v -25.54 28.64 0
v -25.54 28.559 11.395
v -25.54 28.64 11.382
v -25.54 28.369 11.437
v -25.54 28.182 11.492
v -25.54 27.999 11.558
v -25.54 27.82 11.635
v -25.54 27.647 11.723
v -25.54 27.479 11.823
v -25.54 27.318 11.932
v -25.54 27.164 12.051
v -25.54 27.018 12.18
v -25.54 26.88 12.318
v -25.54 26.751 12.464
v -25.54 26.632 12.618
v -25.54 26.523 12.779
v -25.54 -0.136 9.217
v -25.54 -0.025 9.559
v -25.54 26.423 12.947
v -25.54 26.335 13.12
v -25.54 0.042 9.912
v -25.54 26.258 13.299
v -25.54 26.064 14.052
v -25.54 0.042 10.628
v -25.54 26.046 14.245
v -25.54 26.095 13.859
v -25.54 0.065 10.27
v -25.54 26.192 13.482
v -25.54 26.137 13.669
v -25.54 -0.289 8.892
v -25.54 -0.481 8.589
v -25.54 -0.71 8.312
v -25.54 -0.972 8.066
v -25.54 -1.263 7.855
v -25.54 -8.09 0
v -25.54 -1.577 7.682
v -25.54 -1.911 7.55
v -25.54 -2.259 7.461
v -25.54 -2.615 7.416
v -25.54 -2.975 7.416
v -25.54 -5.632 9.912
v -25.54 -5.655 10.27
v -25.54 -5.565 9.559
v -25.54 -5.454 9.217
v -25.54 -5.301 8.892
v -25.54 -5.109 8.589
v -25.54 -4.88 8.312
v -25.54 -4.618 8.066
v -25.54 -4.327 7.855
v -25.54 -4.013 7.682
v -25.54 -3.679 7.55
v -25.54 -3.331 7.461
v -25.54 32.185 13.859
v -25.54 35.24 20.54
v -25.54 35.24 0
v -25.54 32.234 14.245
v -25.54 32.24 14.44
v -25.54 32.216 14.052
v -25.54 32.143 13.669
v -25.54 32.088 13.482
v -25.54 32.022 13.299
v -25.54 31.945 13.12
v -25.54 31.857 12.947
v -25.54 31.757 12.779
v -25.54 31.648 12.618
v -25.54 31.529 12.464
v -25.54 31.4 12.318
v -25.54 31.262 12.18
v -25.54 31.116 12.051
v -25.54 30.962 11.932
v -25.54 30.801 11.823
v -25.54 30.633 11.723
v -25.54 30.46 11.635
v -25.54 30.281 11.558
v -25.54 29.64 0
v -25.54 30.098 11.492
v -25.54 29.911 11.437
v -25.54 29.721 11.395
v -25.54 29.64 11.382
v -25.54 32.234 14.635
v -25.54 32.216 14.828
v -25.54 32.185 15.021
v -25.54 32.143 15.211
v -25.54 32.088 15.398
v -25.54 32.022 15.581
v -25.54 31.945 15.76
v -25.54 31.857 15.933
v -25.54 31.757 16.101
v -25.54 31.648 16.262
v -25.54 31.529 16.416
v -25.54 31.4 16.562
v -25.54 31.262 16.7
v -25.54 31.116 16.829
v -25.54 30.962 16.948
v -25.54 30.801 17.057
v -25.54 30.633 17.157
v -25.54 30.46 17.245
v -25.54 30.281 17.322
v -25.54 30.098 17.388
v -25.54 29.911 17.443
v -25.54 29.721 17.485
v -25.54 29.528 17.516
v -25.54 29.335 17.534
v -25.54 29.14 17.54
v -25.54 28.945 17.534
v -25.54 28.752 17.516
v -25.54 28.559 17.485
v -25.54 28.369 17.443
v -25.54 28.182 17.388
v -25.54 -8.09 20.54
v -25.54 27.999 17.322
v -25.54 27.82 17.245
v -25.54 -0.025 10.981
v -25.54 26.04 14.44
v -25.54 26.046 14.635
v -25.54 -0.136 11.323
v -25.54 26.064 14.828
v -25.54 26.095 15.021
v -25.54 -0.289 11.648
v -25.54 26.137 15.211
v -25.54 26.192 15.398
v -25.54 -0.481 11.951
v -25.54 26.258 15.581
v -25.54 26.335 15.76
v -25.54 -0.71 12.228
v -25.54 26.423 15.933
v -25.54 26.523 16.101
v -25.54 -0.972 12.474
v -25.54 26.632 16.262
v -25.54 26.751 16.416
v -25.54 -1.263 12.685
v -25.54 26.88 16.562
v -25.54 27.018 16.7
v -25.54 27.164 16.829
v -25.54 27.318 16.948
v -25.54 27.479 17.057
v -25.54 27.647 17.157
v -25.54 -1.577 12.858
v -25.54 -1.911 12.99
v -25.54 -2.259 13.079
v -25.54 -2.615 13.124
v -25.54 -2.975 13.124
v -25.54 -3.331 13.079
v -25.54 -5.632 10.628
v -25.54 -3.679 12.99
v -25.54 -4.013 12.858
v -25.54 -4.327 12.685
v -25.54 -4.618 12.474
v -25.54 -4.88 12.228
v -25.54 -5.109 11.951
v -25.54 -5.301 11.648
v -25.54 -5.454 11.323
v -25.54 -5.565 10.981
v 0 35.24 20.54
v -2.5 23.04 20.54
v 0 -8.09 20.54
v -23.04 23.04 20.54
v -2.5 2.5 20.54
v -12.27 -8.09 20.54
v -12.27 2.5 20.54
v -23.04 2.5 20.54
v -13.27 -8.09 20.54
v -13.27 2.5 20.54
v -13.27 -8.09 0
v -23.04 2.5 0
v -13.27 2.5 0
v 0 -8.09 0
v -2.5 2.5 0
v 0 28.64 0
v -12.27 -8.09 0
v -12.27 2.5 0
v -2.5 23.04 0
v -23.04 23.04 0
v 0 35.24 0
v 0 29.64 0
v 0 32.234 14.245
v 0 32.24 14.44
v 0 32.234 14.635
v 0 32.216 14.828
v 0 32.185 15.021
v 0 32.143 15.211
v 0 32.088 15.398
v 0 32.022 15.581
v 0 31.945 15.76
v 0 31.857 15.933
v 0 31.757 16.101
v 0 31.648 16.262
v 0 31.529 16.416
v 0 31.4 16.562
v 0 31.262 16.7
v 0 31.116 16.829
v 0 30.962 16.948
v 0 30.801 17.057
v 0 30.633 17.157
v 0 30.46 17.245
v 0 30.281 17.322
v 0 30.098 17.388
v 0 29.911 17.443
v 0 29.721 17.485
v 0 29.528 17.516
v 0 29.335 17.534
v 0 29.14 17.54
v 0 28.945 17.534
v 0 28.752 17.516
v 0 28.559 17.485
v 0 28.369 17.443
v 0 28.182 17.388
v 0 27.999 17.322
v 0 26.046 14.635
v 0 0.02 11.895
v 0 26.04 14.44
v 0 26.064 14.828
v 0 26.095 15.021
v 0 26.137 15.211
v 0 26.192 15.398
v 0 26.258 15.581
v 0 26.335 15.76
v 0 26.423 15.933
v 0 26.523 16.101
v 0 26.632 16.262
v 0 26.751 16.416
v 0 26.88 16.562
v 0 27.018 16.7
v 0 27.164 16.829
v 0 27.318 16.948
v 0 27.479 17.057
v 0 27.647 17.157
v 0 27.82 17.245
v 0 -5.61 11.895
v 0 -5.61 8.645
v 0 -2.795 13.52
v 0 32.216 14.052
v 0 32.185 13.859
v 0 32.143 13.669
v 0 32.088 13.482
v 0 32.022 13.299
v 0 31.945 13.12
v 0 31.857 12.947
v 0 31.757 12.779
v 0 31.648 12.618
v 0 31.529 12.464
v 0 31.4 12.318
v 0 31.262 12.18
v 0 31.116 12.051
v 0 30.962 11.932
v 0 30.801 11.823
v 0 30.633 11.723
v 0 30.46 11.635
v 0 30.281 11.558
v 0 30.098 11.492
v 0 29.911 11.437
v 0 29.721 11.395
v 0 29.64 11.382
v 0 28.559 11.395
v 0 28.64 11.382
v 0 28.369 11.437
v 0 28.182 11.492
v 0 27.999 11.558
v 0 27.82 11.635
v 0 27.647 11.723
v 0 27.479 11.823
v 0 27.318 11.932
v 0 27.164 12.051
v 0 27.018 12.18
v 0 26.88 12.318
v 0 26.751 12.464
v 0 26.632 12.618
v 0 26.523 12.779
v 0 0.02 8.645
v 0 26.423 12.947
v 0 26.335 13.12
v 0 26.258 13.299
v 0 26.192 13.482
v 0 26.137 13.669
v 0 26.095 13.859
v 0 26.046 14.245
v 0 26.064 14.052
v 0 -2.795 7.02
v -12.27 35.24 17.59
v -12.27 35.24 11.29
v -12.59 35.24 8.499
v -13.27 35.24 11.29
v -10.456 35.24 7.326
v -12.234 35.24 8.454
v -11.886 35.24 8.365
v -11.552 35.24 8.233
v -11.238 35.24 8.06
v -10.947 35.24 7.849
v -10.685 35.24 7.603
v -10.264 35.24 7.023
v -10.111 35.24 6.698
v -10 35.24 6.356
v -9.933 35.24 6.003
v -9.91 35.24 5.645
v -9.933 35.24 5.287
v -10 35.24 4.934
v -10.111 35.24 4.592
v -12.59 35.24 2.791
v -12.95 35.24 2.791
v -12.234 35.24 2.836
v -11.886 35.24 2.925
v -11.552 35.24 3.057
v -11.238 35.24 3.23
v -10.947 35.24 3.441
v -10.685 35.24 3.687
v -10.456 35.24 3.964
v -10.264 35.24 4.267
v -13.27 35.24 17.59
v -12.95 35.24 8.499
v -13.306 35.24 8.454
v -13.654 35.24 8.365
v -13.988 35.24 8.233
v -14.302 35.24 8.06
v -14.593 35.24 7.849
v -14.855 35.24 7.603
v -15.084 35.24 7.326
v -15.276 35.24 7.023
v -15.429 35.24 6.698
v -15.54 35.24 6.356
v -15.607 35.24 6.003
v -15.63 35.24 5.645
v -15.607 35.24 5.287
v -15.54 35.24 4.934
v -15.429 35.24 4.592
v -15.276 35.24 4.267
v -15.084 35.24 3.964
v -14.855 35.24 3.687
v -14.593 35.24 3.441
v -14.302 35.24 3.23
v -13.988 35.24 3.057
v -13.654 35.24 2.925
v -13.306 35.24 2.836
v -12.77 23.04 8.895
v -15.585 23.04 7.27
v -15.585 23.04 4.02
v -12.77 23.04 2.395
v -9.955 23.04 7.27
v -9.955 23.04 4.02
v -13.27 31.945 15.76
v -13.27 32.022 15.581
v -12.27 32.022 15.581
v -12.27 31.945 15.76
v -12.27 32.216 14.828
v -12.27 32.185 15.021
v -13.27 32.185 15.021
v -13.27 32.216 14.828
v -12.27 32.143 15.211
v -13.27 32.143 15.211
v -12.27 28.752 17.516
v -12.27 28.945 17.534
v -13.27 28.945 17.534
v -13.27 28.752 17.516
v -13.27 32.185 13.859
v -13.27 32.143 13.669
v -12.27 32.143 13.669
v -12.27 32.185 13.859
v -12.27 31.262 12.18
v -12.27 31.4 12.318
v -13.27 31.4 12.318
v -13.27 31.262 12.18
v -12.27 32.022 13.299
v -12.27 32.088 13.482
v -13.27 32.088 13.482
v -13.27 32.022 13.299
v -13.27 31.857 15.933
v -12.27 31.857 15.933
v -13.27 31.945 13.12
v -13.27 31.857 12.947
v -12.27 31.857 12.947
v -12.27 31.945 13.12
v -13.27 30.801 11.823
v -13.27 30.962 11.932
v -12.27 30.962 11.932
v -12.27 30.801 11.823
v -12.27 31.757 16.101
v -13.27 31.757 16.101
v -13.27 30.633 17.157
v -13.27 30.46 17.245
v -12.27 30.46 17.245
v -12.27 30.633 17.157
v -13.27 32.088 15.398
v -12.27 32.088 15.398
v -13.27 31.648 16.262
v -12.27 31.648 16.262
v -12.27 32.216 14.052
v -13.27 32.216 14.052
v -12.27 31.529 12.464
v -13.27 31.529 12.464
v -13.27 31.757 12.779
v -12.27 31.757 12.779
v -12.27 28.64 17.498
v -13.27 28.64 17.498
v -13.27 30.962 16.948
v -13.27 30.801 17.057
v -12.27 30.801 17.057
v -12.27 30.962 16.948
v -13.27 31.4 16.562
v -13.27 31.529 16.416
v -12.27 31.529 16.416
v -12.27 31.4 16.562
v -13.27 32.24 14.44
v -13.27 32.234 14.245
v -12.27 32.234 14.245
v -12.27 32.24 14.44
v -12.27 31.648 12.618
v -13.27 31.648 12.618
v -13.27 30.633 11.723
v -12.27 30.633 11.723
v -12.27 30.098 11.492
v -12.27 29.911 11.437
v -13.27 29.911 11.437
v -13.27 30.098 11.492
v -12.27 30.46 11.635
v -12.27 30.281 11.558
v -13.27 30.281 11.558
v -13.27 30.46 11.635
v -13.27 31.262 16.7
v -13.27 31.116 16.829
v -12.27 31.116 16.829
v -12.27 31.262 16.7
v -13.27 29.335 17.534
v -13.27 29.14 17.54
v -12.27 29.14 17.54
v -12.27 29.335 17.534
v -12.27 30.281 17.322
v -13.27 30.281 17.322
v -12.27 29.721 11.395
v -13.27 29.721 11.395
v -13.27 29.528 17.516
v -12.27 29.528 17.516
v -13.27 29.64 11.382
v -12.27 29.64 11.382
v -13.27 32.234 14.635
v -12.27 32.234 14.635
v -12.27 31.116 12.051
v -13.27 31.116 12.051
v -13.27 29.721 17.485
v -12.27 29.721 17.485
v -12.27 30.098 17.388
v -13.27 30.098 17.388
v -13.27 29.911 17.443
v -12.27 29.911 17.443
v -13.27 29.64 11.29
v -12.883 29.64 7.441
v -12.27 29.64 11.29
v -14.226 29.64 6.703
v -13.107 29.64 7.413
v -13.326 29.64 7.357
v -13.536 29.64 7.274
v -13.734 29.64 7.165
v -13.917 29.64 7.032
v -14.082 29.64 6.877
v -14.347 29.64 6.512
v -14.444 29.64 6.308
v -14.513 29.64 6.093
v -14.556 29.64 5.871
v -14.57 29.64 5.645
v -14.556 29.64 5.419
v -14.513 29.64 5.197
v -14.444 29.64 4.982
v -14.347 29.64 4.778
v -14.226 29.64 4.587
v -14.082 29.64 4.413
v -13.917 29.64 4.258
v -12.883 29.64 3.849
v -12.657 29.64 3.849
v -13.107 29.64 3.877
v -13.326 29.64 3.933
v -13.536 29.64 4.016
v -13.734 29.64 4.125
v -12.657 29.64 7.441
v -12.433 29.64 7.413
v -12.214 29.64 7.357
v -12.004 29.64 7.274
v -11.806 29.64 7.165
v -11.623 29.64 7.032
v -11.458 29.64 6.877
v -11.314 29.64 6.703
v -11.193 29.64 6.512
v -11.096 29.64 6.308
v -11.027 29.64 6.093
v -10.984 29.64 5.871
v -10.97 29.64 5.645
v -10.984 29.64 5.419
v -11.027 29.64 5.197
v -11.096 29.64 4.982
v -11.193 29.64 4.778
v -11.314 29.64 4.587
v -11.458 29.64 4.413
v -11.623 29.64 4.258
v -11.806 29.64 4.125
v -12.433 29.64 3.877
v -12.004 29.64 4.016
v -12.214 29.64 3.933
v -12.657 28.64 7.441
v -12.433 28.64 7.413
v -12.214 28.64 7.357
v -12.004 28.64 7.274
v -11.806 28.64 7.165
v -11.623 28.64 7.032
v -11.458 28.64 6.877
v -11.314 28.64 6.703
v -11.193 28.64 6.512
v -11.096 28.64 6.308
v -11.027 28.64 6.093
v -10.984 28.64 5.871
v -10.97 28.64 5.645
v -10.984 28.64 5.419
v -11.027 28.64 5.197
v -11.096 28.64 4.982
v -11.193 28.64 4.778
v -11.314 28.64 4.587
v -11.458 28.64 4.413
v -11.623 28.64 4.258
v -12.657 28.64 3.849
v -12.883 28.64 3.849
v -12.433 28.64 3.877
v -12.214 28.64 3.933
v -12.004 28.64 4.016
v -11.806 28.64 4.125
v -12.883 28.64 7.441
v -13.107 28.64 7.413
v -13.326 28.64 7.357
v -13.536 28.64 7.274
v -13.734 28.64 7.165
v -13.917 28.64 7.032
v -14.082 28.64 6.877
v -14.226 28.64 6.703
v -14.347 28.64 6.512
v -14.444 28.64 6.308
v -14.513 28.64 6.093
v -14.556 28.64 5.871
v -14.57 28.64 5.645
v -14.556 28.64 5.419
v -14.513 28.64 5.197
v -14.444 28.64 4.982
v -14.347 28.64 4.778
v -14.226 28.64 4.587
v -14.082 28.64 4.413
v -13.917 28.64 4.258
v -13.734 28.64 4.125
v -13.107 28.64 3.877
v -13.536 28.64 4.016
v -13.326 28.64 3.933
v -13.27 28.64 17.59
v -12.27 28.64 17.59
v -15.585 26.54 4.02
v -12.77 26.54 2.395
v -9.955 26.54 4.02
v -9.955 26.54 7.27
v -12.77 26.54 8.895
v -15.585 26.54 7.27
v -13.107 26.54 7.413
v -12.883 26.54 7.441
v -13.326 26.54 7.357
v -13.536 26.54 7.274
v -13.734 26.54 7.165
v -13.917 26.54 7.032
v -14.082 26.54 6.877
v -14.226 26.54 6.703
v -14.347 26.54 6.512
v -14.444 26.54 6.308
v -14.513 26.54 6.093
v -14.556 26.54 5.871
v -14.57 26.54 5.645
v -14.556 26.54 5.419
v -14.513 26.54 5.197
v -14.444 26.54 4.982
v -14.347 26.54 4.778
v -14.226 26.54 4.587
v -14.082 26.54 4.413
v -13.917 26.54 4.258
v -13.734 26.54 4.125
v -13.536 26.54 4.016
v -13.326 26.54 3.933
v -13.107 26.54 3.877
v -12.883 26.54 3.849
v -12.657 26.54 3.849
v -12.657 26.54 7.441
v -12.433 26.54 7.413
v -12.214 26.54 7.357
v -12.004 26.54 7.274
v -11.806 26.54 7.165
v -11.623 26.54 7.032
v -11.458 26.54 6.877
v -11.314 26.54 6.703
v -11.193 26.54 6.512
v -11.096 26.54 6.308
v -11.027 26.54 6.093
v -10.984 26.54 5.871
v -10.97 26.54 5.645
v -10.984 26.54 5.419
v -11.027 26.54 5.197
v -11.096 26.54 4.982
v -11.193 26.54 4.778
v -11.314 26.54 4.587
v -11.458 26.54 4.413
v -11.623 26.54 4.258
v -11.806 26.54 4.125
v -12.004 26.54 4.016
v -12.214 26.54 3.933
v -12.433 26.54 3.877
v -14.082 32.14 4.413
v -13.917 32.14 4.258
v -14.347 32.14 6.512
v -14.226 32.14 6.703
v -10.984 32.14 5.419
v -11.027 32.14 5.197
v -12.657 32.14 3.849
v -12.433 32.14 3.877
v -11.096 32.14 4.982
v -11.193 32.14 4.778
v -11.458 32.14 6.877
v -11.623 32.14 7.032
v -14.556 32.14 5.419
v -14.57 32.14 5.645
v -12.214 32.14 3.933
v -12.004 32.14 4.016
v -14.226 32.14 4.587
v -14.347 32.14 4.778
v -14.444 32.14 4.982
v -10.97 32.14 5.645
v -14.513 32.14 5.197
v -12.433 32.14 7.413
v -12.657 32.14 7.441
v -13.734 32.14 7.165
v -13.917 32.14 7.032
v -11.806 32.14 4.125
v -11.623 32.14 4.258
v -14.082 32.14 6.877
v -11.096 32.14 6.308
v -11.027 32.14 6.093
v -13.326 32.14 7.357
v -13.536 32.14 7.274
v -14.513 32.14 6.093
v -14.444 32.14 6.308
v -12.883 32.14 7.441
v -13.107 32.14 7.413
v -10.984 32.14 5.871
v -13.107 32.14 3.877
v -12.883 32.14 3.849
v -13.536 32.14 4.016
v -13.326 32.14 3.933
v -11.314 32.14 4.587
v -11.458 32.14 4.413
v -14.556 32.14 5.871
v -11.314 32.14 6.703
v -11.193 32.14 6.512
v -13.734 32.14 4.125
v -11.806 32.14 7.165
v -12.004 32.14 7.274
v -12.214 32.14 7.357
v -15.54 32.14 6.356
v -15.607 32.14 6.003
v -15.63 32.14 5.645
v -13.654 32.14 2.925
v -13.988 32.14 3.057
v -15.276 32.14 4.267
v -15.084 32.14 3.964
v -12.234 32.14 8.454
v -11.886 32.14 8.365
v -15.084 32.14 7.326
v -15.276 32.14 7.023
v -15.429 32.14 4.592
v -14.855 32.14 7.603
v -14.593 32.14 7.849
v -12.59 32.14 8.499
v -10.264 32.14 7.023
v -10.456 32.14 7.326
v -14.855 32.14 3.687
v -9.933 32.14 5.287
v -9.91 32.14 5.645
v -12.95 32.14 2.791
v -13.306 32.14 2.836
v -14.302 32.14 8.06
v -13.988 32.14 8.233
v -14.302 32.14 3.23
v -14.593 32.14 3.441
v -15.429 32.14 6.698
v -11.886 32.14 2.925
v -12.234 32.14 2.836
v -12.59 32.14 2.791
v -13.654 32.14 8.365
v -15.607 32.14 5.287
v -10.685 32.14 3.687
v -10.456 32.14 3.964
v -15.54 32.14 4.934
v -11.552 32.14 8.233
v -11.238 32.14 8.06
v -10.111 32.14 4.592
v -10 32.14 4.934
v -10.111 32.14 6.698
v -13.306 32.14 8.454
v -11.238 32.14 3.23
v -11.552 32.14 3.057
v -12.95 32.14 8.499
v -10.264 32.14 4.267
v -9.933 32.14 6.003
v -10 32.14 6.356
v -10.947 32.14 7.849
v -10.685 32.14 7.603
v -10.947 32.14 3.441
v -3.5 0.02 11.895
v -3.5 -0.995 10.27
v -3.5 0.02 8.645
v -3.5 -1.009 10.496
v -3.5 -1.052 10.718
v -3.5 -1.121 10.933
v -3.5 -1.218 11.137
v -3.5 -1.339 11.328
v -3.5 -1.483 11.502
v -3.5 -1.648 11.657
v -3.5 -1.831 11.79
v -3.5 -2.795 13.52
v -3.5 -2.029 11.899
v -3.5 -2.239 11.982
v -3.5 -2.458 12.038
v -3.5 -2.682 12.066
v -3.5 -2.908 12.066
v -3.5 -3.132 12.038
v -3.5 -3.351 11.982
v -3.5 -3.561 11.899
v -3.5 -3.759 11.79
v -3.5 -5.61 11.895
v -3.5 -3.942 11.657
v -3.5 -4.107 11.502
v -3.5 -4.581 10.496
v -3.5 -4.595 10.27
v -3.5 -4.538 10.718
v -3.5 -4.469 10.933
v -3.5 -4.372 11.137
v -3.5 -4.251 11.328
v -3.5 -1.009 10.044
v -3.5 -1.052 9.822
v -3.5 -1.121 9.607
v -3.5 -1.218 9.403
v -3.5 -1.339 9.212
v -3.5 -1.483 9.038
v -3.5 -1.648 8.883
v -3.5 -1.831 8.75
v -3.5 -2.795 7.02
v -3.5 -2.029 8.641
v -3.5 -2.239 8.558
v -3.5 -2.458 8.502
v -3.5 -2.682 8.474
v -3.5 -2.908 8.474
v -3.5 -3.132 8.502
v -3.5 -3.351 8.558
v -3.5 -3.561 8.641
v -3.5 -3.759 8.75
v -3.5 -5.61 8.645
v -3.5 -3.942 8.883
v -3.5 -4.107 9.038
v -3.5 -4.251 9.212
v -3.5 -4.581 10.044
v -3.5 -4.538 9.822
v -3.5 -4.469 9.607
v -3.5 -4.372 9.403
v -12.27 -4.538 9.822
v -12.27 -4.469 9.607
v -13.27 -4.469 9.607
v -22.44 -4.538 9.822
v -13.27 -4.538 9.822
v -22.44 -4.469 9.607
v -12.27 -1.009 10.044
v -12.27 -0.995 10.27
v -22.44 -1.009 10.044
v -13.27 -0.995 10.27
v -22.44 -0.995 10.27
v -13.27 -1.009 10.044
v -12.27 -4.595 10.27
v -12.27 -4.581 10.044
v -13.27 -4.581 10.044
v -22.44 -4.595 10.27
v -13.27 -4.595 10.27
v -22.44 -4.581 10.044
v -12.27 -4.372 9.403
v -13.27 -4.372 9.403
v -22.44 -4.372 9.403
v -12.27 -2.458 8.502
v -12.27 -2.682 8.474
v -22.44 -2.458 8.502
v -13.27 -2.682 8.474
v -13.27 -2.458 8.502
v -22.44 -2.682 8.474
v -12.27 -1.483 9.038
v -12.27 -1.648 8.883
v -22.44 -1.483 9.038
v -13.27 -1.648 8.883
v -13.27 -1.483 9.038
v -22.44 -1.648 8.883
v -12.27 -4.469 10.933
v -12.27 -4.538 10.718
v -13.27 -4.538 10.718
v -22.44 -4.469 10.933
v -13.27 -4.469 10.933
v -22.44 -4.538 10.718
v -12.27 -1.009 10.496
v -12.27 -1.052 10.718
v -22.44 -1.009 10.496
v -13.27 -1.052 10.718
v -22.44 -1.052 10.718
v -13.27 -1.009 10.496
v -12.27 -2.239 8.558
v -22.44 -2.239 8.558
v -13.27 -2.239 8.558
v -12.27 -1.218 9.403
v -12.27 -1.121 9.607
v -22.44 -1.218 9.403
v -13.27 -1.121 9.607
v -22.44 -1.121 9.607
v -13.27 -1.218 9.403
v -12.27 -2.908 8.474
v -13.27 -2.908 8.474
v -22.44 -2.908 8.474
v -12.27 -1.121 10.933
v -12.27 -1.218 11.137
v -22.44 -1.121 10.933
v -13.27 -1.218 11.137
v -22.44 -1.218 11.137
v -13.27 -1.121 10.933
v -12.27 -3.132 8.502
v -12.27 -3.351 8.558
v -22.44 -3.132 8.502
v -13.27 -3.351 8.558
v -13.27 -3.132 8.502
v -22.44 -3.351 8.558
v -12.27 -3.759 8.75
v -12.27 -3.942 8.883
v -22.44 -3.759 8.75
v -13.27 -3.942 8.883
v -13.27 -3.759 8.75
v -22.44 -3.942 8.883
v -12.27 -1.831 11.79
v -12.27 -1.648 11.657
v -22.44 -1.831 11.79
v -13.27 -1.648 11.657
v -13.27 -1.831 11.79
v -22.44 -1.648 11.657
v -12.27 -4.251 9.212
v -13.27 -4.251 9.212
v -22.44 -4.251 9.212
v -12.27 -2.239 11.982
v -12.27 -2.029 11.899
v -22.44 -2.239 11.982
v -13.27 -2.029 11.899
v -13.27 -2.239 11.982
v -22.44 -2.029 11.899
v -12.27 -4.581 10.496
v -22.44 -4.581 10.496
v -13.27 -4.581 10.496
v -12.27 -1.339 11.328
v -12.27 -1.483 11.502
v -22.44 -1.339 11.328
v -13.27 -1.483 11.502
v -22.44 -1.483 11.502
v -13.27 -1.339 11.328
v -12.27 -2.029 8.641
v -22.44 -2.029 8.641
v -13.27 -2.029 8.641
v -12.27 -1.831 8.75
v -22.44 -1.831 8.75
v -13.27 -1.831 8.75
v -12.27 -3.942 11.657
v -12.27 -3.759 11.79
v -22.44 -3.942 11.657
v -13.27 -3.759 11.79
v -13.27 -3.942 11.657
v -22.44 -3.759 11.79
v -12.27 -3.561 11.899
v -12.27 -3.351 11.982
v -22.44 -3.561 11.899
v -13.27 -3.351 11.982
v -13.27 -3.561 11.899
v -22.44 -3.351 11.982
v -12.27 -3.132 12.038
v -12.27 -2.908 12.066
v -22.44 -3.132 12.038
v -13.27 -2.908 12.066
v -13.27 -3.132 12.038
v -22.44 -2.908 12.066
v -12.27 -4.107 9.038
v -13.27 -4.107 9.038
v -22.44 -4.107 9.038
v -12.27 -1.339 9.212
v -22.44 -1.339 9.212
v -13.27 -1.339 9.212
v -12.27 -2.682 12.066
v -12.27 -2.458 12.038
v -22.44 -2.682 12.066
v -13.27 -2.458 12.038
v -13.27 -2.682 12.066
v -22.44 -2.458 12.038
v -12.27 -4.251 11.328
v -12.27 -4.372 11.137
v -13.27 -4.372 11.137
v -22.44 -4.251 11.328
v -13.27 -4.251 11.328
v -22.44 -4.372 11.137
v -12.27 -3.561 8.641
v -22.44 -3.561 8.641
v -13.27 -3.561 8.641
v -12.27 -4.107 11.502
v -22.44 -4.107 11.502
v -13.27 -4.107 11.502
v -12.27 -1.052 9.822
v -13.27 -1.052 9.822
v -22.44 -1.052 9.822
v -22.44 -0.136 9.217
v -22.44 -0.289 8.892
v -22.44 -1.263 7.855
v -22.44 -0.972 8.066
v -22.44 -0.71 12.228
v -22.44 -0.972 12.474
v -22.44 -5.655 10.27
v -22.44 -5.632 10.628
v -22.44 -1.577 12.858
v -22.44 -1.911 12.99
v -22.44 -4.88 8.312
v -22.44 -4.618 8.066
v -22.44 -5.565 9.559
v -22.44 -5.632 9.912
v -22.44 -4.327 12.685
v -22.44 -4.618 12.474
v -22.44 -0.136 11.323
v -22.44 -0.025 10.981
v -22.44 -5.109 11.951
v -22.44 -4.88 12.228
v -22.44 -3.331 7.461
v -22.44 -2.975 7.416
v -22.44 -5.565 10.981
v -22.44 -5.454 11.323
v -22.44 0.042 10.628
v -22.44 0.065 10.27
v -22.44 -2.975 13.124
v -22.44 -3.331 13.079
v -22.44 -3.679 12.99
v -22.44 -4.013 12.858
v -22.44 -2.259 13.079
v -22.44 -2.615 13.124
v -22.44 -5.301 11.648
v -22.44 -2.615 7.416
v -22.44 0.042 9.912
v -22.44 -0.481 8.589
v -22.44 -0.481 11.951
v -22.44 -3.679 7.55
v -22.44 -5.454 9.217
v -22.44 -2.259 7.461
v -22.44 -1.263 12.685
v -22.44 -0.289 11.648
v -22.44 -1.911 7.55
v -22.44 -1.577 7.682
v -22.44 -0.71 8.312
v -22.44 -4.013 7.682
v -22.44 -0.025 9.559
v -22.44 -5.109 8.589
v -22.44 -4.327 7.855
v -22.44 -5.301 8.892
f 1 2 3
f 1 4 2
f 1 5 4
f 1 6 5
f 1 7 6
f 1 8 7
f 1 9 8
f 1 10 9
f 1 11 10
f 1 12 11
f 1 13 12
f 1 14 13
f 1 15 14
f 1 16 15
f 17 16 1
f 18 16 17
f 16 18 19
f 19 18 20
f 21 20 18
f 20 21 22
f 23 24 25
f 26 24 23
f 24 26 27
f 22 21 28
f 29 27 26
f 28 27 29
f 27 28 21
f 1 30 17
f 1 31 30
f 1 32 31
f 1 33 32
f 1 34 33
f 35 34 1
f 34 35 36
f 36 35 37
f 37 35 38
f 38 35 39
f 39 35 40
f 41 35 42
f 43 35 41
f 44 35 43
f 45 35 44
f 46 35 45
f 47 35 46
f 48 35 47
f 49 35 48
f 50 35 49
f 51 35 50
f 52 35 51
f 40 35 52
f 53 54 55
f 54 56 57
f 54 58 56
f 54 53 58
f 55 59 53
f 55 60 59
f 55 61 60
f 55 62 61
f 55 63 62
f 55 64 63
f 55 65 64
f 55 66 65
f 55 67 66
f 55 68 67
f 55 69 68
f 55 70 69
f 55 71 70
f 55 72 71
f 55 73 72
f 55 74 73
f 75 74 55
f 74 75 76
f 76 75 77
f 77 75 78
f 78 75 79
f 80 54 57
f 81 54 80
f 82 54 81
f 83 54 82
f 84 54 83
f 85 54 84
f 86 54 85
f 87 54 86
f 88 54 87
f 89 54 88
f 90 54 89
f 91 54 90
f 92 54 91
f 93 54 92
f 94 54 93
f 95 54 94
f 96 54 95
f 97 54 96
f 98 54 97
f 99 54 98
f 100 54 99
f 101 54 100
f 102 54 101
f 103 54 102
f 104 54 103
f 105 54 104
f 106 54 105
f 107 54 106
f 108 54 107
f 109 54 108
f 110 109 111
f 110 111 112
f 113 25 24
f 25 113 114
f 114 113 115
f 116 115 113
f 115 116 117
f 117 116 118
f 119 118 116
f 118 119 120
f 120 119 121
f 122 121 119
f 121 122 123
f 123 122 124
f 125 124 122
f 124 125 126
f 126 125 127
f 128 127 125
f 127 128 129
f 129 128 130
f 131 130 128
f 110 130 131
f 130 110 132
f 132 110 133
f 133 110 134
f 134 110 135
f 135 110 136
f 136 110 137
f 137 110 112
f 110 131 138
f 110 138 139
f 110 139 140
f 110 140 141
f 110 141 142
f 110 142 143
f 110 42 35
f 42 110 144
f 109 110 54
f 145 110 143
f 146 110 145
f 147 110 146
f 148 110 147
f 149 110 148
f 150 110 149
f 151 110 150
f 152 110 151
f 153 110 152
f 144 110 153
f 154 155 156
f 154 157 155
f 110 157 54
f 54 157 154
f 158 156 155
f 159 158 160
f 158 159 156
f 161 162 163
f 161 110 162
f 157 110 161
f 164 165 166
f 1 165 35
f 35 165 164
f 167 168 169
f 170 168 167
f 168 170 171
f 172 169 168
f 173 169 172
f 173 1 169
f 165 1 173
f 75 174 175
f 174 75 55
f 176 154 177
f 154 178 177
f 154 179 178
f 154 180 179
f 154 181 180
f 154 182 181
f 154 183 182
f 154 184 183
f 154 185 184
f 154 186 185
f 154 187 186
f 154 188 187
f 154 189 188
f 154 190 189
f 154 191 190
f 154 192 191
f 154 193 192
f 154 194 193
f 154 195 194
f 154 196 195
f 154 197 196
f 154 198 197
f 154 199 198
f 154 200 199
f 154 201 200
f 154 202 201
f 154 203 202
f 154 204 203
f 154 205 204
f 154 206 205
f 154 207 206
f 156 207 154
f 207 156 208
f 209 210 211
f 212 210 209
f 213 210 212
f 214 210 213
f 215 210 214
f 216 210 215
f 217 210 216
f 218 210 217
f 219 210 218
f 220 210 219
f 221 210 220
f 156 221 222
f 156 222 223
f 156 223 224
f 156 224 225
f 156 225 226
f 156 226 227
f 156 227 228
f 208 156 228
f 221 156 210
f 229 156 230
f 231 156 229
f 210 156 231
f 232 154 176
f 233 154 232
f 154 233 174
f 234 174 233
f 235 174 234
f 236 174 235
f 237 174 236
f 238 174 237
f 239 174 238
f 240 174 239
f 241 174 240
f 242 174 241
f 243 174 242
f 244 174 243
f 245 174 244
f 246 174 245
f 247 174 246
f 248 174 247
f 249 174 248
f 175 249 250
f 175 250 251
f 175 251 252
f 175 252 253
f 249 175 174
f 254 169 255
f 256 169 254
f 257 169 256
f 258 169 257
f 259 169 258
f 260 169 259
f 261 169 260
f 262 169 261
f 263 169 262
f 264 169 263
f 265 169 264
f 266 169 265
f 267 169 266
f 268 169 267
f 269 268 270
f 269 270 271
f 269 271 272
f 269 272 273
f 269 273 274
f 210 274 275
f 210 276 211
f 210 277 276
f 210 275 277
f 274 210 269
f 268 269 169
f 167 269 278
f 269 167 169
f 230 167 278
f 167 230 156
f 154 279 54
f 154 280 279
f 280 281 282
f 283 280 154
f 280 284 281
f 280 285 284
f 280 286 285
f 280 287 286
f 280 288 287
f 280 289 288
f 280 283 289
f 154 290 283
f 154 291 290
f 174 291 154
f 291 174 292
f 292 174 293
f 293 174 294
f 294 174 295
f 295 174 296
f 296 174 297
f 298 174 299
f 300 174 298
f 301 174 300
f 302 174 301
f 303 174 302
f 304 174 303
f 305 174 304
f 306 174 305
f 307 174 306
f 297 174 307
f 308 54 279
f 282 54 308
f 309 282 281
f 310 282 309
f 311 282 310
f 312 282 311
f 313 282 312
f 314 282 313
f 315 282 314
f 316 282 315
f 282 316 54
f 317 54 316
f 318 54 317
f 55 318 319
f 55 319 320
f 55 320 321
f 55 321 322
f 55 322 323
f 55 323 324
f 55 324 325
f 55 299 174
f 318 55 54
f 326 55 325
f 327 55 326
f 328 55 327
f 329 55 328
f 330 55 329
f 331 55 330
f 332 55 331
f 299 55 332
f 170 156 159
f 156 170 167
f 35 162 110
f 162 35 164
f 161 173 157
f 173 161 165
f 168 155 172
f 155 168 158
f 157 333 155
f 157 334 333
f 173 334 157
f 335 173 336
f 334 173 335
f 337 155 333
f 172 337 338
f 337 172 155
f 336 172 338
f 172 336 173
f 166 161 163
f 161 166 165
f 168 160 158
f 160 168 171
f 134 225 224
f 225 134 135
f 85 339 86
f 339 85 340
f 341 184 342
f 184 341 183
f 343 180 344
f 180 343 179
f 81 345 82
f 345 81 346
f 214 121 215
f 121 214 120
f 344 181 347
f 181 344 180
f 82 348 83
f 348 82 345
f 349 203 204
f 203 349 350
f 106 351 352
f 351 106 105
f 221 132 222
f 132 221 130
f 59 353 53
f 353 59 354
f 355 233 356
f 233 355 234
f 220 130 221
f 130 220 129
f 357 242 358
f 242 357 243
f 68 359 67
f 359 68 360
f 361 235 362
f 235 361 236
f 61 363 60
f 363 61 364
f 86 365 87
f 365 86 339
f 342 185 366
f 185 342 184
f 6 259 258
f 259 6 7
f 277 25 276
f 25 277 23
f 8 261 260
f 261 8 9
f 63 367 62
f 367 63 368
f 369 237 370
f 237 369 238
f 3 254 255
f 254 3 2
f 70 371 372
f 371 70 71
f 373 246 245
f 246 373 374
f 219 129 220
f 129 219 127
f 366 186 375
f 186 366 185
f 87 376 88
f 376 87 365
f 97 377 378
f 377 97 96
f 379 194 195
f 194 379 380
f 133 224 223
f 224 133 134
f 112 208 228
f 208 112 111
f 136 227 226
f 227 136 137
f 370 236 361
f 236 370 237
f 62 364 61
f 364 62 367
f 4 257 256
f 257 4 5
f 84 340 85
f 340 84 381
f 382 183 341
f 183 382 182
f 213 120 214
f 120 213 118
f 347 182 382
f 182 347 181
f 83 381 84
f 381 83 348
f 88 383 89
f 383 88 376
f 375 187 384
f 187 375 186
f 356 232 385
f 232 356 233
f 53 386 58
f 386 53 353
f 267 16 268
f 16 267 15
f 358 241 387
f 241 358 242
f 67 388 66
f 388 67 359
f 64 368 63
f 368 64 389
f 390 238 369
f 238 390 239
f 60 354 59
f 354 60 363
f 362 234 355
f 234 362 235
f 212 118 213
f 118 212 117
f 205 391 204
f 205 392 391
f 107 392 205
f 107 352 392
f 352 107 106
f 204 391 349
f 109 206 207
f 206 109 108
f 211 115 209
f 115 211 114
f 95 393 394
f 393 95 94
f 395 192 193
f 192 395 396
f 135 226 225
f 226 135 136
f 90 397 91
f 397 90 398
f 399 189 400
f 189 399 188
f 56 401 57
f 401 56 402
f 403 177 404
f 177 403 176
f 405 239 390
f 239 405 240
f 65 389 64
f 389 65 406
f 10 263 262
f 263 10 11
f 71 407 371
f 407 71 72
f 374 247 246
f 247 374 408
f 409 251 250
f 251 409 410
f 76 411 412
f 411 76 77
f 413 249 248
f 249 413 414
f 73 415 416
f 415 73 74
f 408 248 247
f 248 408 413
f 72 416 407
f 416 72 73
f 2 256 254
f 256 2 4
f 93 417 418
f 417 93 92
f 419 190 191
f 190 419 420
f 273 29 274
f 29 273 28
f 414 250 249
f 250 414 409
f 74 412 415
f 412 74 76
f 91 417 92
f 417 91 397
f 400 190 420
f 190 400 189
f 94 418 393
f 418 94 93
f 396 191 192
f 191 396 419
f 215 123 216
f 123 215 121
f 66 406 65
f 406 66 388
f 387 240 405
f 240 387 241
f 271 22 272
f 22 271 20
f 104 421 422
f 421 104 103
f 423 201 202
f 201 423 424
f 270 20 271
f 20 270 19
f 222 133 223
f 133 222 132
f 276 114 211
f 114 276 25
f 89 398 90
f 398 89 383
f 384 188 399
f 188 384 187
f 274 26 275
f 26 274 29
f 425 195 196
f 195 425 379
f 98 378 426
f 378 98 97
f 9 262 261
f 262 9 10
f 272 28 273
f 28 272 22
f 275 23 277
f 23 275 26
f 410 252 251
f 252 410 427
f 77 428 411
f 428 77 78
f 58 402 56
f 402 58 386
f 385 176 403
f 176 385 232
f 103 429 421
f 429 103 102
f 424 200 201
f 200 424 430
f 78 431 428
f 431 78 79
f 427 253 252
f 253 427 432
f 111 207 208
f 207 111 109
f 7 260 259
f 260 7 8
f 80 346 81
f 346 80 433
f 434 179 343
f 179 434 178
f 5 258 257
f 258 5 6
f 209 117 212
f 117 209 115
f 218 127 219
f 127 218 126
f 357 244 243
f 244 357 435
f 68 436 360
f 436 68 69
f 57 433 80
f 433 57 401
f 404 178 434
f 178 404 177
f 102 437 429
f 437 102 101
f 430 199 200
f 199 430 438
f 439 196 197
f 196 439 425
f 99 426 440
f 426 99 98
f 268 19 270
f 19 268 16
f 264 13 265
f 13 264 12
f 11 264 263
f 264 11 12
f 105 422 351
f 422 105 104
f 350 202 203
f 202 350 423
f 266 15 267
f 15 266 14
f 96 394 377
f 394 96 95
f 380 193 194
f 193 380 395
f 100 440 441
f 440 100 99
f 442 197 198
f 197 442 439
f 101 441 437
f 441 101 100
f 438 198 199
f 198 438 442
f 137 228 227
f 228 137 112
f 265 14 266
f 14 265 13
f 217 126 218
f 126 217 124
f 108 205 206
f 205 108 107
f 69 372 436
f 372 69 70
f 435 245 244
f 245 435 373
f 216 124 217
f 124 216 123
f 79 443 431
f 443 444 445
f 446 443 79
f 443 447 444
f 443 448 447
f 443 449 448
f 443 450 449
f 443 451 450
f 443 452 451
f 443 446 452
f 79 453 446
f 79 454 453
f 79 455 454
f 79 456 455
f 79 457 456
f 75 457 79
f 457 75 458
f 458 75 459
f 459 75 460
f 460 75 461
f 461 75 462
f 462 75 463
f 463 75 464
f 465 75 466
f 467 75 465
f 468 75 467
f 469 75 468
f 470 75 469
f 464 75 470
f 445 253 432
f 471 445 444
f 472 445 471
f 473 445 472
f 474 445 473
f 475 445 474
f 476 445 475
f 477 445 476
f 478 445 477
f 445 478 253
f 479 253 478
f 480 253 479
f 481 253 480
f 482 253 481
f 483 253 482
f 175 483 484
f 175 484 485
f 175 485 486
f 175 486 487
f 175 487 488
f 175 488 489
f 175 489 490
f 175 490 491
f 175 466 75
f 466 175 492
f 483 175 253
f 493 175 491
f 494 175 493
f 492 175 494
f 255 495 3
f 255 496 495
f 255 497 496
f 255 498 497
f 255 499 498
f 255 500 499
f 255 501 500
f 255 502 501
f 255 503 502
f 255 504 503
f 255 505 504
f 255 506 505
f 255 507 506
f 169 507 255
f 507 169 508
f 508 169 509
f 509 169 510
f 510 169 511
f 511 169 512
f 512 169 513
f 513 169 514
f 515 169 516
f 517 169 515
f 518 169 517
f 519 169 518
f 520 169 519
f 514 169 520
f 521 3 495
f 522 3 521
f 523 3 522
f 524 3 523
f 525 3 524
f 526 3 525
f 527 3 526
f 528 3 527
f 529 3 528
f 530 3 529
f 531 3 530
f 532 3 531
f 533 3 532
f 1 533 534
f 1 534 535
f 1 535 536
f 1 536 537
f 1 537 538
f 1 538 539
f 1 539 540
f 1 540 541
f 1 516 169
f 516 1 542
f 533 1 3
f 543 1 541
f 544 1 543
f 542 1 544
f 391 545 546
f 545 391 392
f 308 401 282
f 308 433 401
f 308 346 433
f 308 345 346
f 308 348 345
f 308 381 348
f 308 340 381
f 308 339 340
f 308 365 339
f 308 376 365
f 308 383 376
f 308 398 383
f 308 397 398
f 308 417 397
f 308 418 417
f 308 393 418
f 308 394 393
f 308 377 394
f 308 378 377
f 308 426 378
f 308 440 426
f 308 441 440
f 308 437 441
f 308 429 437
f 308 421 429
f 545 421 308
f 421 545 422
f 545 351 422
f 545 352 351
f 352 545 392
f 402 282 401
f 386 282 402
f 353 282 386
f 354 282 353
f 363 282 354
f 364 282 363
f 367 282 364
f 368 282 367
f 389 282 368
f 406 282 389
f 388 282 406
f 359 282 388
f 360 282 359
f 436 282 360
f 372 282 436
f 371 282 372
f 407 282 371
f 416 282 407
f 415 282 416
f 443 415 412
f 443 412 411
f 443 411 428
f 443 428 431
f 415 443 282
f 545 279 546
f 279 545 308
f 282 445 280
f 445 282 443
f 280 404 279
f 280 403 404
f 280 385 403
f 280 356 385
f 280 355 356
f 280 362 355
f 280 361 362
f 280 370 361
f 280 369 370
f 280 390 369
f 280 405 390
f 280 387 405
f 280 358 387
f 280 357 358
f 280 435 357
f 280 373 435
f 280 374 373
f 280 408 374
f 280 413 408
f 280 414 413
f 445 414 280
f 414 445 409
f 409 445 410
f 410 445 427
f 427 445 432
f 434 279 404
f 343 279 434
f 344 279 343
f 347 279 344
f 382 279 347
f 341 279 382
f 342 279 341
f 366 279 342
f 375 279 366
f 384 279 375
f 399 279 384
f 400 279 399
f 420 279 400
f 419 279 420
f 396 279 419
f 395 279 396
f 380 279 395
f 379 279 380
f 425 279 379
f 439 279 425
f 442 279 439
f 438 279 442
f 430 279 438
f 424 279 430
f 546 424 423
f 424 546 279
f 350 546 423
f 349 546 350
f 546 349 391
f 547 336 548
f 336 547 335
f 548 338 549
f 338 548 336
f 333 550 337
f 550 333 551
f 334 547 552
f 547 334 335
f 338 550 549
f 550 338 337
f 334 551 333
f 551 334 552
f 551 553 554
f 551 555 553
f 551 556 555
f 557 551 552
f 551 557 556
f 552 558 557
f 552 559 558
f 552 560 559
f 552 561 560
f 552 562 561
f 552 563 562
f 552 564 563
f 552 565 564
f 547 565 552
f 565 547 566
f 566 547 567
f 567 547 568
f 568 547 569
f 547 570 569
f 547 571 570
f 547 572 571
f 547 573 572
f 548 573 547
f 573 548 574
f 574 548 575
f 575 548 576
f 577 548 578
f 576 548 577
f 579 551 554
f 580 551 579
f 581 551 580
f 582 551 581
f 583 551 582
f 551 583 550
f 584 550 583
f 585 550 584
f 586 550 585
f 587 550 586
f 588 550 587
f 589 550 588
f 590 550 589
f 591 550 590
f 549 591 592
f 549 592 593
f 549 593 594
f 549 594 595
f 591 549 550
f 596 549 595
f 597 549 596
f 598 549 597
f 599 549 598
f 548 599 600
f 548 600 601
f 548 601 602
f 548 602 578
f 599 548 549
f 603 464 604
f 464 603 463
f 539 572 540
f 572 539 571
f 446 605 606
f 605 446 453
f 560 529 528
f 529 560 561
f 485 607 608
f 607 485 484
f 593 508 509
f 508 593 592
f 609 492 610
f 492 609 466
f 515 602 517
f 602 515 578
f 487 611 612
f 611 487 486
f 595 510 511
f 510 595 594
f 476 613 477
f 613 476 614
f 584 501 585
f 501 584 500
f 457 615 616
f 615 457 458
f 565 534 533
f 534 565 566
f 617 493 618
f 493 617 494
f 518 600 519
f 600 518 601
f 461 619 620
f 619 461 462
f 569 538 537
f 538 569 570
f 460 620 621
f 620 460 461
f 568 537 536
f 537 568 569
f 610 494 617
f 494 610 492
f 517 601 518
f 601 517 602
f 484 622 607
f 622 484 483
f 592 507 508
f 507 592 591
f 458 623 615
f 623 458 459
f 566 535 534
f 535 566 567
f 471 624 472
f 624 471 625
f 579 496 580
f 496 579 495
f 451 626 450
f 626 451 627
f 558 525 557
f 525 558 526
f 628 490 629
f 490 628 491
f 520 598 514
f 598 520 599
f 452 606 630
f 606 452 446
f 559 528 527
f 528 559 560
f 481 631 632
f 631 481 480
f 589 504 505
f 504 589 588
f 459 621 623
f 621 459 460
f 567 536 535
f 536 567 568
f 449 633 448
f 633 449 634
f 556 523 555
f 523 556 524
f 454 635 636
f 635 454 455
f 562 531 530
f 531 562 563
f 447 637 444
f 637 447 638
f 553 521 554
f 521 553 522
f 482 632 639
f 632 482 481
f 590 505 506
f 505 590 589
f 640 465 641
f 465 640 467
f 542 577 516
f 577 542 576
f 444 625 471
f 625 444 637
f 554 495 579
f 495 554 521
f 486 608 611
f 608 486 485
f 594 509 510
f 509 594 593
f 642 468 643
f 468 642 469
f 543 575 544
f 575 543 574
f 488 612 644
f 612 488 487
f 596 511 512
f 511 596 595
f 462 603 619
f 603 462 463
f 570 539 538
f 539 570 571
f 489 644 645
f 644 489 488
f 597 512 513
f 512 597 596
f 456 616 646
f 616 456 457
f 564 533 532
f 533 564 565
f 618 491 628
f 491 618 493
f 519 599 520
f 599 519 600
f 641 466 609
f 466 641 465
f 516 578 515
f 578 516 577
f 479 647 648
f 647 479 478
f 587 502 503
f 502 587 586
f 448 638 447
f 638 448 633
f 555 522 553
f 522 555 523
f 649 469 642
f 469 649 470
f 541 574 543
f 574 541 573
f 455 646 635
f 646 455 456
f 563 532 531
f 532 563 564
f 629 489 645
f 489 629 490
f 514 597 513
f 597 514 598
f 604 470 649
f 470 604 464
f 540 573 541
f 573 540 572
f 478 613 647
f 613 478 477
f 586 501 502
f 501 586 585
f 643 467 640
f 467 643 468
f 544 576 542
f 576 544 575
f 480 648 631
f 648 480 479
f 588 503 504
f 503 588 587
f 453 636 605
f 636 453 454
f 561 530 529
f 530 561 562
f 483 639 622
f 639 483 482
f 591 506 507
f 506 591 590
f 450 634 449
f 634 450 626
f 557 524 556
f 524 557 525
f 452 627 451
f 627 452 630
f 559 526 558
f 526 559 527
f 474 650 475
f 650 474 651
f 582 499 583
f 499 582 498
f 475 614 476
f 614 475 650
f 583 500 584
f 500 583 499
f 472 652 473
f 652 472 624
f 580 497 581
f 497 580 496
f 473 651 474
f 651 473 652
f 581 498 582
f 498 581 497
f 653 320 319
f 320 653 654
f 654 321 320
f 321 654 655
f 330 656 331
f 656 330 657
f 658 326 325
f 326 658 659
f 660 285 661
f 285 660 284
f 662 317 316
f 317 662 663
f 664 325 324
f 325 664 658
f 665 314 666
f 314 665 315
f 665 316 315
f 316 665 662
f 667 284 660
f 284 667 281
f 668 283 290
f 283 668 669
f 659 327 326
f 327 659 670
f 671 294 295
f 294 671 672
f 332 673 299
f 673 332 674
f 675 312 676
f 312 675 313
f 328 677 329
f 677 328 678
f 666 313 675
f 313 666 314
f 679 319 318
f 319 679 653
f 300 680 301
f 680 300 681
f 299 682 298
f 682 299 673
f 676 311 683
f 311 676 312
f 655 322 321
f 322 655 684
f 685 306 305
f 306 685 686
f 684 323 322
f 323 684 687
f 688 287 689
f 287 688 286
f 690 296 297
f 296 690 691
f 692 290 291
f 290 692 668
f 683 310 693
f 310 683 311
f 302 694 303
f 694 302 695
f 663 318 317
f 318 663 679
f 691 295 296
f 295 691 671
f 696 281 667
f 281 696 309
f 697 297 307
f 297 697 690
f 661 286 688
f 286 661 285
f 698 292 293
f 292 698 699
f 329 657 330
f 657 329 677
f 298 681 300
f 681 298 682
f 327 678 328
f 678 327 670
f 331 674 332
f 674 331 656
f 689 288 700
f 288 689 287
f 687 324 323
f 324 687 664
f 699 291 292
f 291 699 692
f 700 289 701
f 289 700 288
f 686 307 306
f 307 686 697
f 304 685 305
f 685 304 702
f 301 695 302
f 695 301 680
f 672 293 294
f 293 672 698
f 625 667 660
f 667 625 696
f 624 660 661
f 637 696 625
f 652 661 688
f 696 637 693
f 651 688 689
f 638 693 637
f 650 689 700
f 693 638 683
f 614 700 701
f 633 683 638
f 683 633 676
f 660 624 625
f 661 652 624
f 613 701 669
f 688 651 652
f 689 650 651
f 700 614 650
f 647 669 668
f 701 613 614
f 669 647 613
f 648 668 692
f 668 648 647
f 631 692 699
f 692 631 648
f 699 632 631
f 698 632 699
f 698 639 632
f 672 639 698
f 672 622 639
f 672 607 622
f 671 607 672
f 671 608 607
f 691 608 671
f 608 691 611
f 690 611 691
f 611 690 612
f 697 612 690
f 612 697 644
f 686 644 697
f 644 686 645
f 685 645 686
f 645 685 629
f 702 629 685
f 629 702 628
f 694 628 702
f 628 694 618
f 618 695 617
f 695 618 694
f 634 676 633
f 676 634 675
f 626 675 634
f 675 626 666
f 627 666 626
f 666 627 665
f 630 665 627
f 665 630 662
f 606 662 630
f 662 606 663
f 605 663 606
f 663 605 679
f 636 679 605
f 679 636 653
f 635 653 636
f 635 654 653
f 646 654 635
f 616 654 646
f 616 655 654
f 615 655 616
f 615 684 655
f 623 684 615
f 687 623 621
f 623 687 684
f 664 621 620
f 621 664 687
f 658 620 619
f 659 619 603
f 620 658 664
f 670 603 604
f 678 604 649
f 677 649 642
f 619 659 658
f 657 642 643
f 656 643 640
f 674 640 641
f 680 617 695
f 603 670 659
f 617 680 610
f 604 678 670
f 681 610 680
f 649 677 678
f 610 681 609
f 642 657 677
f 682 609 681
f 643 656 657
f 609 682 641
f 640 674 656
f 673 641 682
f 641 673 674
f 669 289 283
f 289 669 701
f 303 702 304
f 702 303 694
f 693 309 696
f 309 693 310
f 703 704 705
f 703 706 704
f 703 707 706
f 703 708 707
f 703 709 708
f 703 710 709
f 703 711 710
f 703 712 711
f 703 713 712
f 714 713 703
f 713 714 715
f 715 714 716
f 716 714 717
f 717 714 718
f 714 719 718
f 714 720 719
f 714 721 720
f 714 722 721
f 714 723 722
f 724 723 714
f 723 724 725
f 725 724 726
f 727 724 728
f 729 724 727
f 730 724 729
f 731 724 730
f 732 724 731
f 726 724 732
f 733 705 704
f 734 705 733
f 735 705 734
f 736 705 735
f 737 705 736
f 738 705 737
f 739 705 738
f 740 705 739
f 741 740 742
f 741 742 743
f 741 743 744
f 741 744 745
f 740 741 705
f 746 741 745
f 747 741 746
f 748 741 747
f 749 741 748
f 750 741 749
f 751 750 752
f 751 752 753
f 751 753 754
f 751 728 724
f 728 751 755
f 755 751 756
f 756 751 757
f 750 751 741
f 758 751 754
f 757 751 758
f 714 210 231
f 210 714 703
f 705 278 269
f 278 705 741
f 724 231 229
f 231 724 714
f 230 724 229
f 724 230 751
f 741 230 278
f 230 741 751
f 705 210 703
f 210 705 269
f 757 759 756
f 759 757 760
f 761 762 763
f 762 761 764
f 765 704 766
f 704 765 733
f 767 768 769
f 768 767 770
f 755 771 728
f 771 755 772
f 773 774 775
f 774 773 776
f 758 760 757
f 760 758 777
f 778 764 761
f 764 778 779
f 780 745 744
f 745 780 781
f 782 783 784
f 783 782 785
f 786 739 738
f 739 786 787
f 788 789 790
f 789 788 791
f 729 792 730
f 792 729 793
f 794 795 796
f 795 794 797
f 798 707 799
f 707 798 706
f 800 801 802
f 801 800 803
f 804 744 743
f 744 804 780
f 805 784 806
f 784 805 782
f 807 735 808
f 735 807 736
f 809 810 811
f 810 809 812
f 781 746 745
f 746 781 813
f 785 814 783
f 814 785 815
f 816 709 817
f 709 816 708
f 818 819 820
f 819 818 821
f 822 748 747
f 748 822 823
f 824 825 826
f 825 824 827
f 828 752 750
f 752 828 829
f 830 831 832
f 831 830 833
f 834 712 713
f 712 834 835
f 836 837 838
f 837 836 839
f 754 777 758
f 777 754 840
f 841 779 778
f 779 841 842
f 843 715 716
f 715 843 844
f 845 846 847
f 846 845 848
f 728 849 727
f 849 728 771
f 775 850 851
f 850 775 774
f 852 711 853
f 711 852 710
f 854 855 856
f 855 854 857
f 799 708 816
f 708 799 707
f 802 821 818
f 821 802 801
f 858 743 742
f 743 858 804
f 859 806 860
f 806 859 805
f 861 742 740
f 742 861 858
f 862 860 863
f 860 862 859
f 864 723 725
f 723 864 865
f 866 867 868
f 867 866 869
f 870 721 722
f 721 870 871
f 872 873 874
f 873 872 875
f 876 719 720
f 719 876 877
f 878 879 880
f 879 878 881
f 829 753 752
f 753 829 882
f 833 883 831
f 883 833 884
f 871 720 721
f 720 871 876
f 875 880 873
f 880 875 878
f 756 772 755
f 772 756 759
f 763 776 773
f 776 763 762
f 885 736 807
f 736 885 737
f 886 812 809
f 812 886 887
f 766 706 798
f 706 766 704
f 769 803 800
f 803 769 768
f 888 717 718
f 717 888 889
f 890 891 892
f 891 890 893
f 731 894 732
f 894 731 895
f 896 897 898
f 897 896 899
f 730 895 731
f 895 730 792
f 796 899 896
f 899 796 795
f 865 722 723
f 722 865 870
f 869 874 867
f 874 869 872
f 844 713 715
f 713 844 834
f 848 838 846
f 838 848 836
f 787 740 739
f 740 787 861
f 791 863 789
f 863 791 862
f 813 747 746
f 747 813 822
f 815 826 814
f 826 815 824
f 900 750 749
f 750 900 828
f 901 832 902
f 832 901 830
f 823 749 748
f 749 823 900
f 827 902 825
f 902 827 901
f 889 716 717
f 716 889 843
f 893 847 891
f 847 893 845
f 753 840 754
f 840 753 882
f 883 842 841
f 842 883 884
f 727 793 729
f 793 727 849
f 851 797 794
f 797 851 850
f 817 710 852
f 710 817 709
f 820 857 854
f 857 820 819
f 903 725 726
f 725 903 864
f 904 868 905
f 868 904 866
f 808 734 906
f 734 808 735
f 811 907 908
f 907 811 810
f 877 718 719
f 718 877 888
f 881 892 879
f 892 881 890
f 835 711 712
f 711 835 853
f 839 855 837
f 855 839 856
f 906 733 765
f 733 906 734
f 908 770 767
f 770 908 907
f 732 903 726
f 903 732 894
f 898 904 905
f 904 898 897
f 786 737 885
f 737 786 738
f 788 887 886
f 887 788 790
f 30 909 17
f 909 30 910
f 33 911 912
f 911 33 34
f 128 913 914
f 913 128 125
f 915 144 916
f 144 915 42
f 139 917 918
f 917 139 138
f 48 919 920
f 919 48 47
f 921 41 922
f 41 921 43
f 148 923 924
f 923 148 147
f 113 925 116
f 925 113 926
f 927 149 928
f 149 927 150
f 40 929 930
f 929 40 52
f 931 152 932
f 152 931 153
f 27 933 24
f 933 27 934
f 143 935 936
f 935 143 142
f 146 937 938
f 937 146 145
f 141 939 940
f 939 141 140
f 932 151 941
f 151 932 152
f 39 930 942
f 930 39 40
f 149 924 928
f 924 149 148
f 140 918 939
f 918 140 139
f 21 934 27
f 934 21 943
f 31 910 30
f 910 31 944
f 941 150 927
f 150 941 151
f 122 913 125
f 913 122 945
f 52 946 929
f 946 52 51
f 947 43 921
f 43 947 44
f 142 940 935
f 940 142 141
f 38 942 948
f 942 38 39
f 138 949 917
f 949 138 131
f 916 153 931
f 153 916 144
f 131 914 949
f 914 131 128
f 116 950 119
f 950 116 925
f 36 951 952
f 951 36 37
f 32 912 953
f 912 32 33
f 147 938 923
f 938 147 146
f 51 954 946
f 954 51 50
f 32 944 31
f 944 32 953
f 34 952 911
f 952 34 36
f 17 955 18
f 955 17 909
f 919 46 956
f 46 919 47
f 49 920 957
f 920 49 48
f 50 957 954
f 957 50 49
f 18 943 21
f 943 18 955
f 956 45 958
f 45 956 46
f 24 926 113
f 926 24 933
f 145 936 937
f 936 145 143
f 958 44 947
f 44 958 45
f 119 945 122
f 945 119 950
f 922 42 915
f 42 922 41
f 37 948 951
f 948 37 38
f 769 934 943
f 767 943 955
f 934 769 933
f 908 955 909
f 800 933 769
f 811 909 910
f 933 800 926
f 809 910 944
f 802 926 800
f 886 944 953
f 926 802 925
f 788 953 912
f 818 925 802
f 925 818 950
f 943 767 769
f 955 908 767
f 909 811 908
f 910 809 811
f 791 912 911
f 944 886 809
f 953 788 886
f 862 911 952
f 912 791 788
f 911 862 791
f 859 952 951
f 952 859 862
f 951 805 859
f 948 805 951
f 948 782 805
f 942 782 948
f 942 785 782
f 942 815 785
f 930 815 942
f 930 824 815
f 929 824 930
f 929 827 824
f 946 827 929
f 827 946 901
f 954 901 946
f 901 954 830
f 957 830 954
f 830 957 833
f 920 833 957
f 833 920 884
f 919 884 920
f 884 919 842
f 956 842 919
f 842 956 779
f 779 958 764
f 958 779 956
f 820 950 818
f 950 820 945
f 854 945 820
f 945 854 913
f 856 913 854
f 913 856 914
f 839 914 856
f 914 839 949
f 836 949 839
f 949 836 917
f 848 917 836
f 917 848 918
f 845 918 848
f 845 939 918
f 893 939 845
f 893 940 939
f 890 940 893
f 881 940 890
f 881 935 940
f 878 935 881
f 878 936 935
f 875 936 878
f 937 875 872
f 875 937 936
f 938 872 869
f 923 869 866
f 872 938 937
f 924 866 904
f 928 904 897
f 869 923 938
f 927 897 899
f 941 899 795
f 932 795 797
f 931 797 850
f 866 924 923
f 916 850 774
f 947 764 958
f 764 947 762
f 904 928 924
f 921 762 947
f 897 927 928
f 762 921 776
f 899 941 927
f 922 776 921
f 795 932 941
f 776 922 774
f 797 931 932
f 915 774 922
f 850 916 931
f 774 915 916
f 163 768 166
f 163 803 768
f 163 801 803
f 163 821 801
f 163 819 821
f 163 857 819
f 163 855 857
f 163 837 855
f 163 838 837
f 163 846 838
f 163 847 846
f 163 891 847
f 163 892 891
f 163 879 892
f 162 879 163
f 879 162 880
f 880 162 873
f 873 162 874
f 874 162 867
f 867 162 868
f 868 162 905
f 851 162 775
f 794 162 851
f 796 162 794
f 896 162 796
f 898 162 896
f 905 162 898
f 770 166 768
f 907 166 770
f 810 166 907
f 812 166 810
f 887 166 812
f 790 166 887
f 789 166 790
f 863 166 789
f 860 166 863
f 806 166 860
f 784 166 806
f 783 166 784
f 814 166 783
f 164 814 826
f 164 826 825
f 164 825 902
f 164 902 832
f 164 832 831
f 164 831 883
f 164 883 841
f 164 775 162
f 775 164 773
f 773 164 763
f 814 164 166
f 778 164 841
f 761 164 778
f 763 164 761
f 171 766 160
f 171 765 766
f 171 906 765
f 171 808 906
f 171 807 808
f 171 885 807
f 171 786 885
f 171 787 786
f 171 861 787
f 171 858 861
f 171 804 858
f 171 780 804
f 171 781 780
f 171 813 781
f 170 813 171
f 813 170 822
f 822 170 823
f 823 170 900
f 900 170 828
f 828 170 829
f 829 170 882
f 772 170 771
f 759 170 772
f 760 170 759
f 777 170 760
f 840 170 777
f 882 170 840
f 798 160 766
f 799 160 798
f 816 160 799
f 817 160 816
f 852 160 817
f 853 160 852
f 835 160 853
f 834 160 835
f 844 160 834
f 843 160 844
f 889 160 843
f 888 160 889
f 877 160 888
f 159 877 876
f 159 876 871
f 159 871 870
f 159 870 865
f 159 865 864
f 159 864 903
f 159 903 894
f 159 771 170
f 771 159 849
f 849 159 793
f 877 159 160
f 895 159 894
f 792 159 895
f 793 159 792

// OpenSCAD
anchoBoom = 20.55 - 0.01;
anchoPared = 2.5;
anchoPieza = 12 + 0.2;
radio = 3.15;
longitud = 26;
anchoSlot = 1;
rTornillo = 1.80;
anchoTuerca = 5.54 + 0.05;

module huecoM3(){
  rotate([270,90,0]) cylinder(r=3.2 + 0.05,$fn=6,h=3.5);
}

module cuerpo(){
  difference(){
    union(){
      cube([anchoBoom+2*anchoPared, anchoBoom+anchoPieza+anchoPared, anchoBoom]);
      translate([0,-anchoTuerca-anchoPared,0]) 
        cube([anchoBoom+2*anchoPared,anchoTuerca+anchoPared,anchoBoom]);
    }
  
    translate([anchoPared, anchoPared,0])
      cube([anchoBoom, anchoBoom, anchoBoom+2*anchoPared]);
  
    translate([0,anchoBoom+anchoPared+anchoPieza/2, anchoBoom-anchoPieza/2])
      rotate([0,90,0])
        cylinder(h=anchoBoom+anchoPared*2,r=3.1,$fn=100);
  
    translate([0,anchoBoom+anchoPared+anchoPieza/2-anchoSlot/2,0])
      cube([anchoBoom+2*anchoPared,anchoSlot,anchoBoom-anchoPieza/2]);
    
     translate([(anchoBoom+2*anchoPared-anchoSlot)/2,anchoBoom+anchoPared+anchoPieza/2-anchoSlot/2,anchoBoom-anchoPieza/2-radio])
      cube([anchoSlot,anchoPieza,2*radio]);
  
    translate([(anchoBoom+2*anchoPared)/2, anchoBoom+anchoPared, (anchoBoom-anchoPieza/2-radio)/2])
      huecoM3();
    translate([(anchoBoom+2*anchoPared)/2, anchoBoom+anchoPared, (anchoBoom-anchoPieza/2-radio)/2])
      rotate([270,0,0]) cylinder(h=anchoPieza,r=rTornillo,$fn=50);
    translate([(anchoBoom+2*anchoPared)/2, anchoBoom+anchoPared+anchoPieza, (anchoBoom-anchoPieza/2-radio)/2])
      rotate([90,0,0]) cylinder(h=3.1,r=2.8+0.06,$fn=50);///
    
    translate([0,-anchoTuerca/2,anchoBoom/2])rotate([0,0,270])
      huecoM3();
    translate([0,-anchoTuerca/2,anchoBoom/2])rotate([0,0,270])
      rotate([270,0,0])
        cylinder(h=anchoBoom+2*anchoPared,r=rTornillo,$fn=50);
    translate([anchoBoom+2*anchoPared,-anchoTuerca/2,anchoBoom/2])
      rotate([90,0,270])
        cylinder(h=3.1,r=2.8 + 0.06,$fn=50);
        
    translate([(anchoBoom+2*anchoPared-anchoSlot)/2,-anchoTuerca-anchoPared,0])cube([anchoSlot,anchoTuerca+2*anchoPared,anchoBoom]);
  }
}

mirror([1,0,0]) cuerpo();
